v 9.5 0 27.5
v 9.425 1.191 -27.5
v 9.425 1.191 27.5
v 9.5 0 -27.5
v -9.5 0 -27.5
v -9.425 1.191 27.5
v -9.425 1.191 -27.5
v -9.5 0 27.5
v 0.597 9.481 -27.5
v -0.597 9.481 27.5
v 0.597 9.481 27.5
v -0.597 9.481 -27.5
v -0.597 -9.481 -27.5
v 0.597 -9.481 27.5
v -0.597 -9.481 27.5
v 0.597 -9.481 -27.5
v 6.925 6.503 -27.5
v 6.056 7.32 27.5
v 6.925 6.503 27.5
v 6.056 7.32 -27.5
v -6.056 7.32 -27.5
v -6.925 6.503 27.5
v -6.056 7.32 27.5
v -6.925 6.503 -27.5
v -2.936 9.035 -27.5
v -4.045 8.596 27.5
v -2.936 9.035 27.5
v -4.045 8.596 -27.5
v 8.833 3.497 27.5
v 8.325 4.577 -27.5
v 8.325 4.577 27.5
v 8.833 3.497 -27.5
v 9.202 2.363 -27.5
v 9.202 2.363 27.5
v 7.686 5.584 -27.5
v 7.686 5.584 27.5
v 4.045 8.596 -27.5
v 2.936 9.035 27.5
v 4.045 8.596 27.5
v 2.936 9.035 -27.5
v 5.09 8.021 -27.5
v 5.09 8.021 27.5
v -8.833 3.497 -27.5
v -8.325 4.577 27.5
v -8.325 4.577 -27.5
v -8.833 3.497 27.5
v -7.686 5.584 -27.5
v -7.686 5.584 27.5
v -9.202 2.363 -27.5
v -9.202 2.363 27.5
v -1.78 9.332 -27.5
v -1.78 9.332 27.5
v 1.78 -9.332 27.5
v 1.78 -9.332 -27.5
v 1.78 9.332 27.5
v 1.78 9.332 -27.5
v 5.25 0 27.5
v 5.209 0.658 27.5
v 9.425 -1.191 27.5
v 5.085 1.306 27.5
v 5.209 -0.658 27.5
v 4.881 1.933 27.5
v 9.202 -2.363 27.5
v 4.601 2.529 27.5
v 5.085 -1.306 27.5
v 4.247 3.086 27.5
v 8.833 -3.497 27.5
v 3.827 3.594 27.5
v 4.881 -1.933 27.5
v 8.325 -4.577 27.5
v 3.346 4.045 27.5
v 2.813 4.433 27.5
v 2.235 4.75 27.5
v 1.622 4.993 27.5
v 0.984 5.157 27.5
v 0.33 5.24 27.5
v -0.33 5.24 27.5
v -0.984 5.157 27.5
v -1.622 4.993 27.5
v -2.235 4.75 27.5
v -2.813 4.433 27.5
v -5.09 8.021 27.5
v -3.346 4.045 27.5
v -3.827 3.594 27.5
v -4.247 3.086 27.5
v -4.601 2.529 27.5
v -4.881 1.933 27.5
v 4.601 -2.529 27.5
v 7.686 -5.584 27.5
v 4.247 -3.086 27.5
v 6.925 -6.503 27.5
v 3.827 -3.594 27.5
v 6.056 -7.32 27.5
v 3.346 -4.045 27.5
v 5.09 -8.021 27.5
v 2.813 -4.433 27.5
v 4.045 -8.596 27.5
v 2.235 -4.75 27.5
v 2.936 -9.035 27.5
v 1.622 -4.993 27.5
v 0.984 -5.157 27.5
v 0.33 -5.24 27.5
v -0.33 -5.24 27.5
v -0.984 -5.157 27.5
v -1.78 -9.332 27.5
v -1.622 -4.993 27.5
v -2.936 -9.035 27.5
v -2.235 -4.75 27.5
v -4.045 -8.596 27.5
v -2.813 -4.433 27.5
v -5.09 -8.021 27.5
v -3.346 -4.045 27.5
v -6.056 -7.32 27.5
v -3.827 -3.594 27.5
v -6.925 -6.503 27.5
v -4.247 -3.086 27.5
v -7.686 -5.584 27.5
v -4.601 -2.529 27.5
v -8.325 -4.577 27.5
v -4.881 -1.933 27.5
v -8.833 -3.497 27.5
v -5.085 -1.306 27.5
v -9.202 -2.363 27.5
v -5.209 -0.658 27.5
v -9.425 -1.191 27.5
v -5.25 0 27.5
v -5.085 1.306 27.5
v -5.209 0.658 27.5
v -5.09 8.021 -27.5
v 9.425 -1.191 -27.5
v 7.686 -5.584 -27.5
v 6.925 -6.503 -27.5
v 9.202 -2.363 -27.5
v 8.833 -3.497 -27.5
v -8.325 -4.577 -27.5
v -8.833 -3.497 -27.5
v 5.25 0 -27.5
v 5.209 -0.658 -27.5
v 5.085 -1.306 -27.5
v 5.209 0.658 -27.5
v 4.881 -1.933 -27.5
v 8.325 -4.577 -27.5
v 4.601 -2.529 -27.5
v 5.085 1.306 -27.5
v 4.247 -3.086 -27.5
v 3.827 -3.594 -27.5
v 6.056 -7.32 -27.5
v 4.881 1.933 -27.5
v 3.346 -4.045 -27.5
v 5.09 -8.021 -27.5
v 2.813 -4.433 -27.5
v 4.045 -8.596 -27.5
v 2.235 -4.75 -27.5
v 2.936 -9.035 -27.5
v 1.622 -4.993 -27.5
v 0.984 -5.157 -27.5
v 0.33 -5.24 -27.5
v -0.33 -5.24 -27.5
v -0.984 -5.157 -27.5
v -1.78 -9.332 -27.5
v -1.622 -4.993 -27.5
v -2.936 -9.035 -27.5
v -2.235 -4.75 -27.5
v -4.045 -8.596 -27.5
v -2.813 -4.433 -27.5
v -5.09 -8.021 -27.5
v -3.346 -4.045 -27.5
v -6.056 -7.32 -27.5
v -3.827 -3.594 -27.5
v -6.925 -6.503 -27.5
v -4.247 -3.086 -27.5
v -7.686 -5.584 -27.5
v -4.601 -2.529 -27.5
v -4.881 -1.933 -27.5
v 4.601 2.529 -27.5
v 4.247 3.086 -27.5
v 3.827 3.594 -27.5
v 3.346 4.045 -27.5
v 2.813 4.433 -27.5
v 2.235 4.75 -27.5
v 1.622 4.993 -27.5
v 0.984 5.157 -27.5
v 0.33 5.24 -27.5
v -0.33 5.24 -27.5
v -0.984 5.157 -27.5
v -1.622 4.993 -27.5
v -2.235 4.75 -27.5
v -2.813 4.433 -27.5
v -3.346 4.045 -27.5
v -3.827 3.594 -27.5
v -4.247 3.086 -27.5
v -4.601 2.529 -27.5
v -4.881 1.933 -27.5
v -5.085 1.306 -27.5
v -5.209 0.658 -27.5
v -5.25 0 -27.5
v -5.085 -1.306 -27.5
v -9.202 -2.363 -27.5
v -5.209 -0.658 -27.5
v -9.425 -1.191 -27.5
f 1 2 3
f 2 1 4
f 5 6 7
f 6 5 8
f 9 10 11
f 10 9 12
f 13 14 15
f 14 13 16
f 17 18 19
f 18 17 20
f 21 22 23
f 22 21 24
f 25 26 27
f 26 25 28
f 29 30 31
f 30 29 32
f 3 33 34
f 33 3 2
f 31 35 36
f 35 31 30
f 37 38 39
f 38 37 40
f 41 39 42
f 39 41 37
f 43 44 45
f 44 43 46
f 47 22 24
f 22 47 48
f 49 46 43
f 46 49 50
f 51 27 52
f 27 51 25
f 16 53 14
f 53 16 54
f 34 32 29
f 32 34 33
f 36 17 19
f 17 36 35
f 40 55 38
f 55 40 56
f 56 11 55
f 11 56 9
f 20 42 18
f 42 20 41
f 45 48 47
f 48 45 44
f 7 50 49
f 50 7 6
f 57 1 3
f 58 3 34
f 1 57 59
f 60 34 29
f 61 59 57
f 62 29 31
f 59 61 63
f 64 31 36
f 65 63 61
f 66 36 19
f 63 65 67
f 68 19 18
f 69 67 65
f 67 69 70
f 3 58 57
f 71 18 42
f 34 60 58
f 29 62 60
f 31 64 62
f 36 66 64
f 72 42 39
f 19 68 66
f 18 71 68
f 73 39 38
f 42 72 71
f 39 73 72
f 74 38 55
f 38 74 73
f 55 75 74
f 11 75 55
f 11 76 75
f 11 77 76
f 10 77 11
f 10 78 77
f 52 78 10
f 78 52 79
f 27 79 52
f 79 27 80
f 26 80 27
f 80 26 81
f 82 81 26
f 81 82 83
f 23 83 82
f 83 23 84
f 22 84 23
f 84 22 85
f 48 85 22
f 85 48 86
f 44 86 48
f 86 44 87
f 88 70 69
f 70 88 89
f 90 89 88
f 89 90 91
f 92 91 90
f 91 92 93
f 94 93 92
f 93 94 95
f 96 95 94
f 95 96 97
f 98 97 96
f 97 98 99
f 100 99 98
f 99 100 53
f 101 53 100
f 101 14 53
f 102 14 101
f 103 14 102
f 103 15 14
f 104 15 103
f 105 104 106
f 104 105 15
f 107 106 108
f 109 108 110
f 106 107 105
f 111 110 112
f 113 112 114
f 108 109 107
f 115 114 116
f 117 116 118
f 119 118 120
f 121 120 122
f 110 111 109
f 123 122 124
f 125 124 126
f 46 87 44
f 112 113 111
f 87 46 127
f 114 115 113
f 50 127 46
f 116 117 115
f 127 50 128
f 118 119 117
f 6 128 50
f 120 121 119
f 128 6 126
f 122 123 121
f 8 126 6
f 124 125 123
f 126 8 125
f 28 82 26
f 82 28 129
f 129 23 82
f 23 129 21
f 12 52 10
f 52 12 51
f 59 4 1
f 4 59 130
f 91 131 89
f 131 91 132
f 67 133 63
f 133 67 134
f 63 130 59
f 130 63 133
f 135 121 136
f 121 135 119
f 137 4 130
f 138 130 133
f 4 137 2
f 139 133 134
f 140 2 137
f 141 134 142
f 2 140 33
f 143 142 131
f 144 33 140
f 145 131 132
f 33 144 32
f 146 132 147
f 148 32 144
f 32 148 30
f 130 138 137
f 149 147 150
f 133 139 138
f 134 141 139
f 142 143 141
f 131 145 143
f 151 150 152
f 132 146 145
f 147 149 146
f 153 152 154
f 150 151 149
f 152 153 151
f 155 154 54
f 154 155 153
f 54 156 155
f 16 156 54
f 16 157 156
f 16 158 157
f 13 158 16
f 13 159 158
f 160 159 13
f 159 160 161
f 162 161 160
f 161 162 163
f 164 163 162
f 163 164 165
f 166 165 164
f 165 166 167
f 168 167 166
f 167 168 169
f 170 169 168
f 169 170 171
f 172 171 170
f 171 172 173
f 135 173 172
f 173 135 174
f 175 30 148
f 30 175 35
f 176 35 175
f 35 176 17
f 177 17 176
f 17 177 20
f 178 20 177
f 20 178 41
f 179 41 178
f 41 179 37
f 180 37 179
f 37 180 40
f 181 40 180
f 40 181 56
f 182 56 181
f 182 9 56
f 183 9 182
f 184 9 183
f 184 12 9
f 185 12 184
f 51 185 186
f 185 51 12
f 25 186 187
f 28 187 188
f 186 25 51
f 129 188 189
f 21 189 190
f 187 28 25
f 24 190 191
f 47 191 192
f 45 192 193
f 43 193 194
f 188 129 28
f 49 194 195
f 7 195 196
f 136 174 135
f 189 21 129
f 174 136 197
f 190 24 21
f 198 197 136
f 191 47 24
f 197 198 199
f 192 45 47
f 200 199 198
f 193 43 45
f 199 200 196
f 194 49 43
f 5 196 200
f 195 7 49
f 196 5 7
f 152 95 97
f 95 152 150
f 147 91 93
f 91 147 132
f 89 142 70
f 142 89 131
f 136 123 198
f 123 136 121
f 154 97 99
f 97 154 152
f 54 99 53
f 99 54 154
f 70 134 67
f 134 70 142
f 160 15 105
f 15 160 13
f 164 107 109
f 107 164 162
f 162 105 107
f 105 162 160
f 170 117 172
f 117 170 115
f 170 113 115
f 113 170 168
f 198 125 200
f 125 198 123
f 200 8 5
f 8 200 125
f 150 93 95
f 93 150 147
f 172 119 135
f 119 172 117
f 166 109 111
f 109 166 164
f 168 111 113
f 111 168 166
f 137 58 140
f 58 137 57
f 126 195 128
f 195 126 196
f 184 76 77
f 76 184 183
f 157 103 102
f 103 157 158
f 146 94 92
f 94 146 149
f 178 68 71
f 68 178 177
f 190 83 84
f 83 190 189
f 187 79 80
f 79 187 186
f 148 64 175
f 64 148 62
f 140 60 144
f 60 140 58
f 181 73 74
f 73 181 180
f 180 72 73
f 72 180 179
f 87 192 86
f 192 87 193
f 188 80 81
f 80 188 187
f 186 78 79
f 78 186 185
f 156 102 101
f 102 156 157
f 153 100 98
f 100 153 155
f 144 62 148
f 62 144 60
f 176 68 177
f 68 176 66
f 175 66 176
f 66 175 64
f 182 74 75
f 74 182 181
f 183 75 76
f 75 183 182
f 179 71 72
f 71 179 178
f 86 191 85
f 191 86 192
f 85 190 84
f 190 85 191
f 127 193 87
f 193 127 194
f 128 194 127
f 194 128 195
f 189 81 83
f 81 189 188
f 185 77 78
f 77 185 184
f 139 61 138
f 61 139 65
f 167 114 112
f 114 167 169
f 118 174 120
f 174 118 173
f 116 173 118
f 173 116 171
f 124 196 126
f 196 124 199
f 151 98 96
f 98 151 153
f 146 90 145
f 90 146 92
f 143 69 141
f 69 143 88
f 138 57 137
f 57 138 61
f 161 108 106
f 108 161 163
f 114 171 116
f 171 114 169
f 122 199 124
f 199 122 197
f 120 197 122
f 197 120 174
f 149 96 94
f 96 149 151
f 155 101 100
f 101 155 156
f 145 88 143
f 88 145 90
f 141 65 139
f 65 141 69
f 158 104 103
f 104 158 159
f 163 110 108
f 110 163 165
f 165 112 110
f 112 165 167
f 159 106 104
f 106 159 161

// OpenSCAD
$fn = 50;


difference() {
	union() {
		translate(v = [0, 0, -27.5000000000]) {
			cylinder(h = 55, r = 9.5000000000);
		}
	}
	union() {
		translate(v = [0, 0, -100.0000000000]) {
			cylinder(h = 200, r = 5.2500000000);
		}
	}
}
